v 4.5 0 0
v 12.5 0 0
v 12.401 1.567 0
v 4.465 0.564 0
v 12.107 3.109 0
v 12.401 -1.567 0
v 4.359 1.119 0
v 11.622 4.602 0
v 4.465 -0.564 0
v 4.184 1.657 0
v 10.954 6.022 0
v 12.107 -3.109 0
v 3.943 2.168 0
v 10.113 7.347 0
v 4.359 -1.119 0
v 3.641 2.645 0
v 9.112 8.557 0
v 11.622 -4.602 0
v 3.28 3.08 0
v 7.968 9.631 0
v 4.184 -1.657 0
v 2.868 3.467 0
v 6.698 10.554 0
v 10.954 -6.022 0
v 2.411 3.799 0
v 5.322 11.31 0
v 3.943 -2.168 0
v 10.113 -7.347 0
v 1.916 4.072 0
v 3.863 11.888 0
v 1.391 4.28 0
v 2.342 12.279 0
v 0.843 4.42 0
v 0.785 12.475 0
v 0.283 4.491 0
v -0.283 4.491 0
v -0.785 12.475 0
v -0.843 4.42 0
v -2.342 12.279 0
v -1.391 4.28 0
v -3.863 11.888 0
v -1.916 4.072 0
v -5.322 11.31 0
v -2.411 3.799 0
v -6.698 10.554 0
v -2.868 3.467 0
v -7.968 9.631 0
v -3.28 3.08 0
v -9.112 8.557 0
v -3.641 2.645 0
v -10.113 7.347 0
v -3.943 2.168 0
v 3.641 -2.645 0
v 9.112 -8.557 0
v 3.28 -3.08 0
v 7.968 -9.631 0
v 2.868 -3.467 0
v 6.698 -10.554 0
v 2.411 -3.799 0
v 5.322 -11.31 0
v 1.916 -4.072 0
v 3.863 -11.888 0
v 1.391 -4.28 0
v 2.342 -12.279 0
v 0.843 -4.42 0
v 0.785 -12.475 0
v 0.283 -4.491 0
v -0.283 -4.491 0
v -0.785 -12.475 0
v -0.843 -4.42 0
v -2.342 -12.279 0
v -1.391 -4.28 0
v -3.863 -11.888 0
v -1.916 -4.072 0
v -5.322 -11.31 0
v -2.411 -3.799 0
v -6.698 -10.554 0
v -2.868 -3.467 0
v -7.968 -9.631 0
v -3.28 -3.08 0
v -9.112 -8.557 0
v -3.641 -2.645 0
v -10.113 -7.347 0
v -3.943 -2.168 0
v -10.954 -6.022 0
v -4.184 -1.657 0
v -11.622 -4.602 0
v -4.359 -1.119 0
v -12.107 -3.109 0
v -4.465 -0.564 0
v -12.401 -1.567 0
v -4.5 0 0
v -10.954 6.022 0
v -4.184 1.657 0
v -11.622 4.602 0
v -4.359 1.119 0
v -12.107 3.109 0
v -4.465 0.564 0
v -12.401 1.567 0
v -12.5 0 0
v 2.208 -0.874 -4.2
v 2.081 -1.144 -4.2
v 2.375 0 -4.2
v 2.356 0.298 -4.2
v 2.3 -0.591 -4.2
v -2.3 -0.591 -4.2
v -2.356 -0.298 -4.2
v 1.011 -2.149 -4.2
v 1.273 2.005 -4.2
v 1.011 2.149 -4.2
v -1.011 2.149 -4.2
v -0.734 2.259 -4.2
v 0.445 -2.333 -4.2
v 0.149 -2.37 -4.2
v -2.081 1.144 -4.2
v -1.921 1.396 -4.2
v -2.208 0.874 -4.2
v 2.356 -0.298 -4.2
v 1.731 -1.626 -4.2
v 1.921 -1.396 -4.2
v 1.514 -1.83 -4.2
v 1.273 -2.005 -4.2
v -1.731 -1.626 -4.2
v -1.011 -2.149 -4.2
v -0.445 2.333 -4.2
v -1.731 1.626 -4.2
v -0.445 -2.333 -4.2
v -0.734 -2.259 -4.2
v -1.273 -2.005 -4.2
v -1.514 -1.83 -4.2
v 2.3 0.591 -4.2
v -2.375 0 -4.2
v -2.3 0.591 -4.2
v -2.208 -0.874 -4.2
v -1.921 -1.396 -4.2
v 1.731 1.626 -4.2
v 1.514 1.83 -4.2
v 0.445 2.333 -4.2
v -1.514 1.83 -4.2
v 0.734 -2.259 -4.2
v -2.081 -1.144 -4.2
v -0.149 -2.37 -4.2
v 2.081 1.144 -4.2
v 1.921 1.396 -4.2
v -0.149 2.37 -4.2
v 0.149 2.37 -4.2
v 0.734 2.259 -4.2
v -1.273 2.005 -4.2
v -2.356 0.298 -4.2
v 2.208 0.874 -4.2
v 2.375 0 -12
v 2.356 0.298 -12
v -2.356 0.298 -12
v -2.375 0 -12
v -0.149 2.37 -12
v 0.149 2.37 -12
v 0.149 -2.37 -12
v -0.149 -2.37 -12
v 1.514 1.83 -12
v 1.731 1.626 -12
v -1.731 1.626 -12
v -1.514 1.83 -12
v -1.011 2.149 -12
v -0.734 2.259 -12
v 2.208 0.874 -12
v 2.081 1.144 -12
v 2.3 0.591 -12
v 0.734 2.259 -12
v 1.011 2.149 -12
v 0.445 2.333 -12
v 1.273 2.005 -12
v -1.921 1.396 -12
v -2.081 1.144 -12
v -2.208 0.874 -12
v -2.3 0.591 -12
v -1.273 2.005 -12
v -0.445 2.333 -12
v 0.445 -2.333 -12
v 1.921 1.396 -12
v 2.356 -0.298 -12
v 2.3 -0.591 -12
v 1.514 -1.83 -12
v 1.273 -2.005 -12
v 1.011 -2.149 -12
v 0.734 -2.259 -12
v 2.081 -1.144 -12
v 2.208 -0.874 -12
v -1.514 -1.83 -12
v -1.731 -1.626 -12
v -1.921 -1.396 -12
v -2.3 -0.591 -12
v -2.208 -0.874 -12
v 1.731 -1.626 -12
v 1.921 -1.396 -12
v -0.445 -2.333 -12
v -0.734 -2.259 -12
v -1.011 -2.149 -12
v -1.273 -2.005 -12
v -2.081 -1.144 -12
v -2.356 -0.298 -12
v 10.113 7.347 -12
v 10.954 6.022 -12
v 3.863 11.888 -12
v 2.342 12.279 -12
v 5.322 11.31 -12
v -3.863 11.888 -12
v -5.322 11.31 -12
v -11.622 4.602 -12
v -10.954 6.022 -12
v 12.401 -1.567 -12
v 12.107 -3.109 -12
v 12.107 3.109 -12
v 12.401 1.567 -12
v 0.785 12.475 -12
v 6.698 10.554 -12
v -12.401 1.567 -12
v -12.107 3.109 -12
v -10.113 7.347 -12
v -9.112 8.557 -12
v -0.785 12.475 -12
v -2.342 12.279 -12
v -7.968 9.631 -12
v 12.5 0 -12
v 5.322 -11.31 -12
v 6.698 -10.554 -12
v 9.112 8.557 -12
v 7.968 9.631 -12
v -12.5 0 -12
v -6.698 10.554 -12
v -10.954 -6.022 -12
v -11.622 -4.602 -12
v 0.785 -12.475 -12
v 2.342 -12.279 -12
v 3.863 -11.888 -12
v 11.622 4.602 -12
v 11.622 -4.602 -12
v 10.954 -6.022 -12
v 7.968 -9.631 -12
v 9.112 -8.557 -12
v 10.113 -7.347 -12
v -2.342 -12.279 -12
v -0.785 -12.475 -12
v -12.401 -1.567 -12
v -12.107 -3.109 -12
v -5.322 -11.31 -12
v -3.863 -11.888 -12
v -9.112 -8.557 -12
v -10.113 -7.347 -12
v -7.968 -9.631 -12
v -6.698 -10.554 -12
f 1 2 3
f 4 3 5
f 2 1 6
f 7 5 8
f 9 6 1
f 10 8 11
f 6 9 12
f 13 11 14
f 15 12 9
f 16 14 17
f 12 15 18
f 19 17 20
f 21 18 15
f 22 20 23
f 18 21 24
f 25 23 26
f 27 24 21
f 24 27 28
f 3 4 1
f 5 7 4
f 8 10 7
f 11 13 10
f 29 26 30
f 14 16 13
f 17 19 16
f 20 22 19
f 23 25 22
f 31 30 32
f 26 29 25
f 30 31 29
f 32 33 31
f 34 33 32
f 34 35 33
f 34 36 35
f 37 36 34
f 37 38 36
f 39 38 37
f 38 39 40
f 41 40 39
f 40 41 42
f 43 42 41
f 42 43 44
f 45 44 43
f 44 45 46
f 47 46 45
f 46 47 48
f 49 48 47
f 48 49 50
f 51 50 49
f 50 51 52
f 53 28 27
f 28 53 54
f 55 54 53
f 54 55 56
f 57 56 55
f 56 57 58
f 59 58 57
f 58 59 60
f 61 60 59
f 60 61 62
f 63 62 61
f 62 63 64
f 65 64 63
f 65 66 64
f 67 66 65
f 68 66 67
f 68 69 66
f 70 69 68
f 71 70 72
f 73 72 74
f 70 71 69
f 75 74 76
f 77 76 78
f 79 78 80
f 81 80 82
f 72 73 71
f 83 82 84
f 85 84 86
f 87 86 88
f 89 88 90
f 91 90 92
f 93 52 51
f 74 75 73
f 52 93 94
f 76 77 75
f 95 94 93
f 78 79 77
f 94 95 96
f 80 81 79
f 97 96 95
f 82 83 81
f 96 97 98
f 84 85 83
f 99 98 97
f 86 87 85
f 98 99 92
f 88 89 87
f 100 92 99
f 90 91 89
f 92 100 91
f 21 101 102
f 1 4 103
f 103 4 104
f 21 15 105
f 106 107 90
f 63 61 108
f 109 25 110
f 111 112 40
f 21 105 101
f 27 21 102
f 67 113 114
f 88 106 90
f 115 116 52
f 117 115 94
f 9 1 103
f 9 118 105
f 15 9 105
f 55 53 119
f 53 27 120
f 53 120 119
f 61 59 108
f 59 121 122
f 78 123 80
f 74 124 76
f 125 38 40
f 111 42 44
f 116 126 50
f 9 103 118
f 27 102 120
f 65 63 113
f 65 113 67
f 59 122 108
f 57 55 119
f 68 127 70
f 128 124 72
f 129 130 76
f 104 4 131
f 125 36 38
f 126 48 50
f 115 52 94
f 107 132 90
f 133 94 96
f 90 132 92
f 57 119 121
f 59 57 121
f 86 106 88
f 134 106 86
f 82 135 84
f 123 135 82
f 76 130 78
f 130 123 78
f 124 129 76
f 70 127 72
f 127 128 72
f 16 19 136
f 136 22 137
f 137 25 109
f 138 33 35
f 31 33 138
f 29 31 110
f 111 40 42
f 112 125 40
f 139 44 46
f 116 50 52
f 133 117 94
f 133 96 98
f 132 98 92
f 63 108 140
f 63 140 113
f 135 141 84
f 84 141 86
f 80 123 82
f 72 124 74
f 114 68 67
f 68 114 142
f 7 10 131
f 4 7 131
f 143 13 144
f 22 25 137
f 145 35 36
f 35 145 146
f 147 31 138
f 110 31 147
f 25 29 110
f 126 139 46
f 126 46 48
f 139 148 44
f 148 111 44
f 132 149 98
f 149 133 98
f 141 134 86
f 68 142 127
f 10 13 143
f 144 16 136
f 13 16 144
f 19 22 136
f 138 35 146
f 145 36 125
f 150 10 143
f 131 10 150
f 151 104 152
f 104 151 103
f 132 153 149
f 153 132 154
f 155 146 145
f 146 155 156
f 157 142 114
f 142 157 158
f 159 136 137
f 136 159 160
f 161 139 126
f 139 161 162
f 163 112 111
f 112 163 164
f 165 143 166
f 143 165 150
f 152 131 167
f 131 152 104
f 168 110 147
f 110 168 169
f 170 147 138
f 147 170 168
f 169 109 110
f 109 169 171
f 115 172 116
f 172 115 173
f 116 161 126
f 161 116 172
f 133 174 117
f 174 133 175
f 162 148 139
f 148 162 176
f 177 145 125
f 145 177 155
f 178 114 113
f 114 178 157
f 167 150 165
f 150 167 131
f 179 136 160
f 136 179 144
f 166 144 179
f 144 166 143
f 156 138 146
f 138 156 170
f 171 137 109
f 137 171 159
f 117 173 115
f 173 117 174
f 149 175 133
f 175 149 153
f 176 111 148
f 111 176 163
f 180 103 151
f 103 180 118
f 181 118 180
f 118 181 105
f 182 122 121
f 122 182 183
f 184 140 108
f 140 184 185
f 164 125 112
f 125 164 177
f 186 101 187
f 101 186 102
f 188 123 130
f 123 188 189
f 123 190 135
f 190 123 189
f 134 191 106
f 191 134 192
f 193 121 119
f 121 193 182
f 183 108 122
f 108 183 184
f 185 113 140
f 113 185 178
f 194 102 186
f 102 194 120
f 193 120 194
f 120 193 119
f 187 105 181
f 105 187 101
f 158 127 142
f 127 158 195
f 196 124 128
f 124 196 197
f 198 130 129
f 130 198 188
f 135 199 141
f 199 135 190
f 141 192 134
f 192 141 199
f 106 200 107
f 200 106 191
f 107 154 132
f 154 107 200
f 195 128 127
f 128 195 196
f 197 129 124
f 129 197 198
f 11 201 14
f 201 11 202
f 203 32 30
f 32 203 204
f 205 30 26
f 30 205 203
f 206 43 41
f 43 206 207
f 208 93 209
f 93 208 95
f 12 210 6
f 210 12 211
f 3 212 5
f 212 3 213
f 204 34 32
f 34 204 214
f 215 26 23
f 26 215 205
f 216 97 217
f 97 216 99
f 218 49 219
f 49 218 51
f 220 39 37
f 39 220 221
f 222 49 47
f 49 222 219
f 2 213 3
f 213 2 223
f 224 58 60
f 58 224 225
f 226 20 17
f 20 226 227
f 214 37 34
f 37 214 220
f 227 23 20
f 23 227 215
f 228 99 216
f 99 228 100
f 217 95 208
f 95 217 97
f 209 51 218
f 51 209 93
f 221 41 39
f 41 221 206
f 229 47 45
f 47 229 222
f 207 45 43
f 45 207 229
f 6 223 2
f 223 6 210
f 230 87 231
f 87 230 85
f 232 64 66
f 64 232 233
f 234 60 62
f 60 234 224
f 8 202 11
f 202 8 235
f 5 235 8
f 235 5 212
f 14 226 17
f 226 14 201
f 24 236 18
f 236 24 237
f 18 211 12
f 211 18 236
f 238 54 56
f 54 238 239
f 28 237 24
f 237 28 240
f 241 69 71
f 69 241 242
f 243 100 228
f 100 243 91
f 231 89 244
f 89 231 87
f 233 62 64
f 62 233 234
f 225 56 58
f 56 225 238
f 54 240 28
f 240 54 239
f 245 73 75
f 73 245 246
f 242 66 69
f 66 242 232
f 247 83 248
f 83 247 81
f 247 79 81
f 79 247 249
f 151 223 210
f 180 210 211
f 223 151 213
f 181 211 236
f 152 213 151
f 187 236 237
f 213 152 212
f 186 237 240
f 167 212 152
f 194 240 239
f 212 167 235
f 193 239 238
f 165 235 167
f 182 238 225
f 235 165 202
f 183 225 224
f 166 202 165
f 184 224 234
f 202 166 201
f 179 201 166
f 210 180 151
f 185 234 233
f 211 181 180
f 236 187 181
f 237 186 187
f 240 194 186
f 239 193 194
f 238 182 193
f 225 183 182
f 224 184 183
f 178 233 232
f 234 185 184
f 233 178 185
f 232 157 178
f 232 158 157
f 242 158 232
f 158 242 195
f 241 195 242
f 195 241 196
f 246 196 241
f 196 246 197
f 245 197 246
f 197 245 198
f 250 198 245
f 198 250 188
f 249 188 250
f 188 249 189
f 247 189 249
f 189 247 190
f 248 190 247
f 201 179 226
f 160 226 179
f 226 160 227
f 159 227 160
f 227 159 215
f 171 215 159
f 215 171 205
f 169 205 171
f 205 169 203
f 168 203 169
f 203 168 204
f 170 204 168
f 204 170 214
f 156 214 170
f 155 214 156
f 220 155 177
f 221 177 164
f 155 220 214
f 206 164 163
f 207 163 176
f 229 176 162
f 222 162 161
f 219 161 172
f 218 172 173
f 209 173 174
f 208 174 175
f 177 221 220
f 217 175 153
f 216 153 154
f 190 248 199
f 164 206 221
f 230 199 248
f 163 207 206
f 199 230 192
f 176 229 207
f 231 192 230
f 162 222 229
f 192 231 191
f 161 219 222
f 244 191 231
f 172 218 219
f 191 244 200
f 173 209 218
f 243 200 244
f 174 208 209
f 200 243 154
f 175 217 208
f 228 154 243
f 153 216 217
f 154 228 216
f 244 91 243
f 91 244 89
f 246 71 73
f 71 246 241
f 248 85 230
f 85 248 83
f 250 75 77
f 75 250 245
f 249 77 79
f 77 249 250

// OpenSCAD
$fn = 50;


difference() {
	union() {
		translate(v = [0, 0, -12.0000000000]) {
			cylinder(h = 12, r = 12.5000000000);
		}
	}
	union() {
		translate(v = [0, 0, 0]) {
			rotate(a = [0, 0, 0]) {
				difference() {
					union() {
						translate(v = [0, 0, -15.0000000000]) {
							cylinder(h = 15, r = 2.2500000000);
						}
						translate(v = [0, 0, -4.2000000000]) {
							cylinder(h = 4.2000000000, r1 = 2.3750000000, r2 = 4.5000000000);
						}
						translate(v = [0, 0, -15.0000000000]) {
							cylinder(h = 15, r = 2.3750000000);
						}
						translate(v = [0, 0, -15.0000000000]) {
							cylinder(h = 15, r = 2.2500000000);
						}
					}
					union();
				}
			}
		}
	}
}
